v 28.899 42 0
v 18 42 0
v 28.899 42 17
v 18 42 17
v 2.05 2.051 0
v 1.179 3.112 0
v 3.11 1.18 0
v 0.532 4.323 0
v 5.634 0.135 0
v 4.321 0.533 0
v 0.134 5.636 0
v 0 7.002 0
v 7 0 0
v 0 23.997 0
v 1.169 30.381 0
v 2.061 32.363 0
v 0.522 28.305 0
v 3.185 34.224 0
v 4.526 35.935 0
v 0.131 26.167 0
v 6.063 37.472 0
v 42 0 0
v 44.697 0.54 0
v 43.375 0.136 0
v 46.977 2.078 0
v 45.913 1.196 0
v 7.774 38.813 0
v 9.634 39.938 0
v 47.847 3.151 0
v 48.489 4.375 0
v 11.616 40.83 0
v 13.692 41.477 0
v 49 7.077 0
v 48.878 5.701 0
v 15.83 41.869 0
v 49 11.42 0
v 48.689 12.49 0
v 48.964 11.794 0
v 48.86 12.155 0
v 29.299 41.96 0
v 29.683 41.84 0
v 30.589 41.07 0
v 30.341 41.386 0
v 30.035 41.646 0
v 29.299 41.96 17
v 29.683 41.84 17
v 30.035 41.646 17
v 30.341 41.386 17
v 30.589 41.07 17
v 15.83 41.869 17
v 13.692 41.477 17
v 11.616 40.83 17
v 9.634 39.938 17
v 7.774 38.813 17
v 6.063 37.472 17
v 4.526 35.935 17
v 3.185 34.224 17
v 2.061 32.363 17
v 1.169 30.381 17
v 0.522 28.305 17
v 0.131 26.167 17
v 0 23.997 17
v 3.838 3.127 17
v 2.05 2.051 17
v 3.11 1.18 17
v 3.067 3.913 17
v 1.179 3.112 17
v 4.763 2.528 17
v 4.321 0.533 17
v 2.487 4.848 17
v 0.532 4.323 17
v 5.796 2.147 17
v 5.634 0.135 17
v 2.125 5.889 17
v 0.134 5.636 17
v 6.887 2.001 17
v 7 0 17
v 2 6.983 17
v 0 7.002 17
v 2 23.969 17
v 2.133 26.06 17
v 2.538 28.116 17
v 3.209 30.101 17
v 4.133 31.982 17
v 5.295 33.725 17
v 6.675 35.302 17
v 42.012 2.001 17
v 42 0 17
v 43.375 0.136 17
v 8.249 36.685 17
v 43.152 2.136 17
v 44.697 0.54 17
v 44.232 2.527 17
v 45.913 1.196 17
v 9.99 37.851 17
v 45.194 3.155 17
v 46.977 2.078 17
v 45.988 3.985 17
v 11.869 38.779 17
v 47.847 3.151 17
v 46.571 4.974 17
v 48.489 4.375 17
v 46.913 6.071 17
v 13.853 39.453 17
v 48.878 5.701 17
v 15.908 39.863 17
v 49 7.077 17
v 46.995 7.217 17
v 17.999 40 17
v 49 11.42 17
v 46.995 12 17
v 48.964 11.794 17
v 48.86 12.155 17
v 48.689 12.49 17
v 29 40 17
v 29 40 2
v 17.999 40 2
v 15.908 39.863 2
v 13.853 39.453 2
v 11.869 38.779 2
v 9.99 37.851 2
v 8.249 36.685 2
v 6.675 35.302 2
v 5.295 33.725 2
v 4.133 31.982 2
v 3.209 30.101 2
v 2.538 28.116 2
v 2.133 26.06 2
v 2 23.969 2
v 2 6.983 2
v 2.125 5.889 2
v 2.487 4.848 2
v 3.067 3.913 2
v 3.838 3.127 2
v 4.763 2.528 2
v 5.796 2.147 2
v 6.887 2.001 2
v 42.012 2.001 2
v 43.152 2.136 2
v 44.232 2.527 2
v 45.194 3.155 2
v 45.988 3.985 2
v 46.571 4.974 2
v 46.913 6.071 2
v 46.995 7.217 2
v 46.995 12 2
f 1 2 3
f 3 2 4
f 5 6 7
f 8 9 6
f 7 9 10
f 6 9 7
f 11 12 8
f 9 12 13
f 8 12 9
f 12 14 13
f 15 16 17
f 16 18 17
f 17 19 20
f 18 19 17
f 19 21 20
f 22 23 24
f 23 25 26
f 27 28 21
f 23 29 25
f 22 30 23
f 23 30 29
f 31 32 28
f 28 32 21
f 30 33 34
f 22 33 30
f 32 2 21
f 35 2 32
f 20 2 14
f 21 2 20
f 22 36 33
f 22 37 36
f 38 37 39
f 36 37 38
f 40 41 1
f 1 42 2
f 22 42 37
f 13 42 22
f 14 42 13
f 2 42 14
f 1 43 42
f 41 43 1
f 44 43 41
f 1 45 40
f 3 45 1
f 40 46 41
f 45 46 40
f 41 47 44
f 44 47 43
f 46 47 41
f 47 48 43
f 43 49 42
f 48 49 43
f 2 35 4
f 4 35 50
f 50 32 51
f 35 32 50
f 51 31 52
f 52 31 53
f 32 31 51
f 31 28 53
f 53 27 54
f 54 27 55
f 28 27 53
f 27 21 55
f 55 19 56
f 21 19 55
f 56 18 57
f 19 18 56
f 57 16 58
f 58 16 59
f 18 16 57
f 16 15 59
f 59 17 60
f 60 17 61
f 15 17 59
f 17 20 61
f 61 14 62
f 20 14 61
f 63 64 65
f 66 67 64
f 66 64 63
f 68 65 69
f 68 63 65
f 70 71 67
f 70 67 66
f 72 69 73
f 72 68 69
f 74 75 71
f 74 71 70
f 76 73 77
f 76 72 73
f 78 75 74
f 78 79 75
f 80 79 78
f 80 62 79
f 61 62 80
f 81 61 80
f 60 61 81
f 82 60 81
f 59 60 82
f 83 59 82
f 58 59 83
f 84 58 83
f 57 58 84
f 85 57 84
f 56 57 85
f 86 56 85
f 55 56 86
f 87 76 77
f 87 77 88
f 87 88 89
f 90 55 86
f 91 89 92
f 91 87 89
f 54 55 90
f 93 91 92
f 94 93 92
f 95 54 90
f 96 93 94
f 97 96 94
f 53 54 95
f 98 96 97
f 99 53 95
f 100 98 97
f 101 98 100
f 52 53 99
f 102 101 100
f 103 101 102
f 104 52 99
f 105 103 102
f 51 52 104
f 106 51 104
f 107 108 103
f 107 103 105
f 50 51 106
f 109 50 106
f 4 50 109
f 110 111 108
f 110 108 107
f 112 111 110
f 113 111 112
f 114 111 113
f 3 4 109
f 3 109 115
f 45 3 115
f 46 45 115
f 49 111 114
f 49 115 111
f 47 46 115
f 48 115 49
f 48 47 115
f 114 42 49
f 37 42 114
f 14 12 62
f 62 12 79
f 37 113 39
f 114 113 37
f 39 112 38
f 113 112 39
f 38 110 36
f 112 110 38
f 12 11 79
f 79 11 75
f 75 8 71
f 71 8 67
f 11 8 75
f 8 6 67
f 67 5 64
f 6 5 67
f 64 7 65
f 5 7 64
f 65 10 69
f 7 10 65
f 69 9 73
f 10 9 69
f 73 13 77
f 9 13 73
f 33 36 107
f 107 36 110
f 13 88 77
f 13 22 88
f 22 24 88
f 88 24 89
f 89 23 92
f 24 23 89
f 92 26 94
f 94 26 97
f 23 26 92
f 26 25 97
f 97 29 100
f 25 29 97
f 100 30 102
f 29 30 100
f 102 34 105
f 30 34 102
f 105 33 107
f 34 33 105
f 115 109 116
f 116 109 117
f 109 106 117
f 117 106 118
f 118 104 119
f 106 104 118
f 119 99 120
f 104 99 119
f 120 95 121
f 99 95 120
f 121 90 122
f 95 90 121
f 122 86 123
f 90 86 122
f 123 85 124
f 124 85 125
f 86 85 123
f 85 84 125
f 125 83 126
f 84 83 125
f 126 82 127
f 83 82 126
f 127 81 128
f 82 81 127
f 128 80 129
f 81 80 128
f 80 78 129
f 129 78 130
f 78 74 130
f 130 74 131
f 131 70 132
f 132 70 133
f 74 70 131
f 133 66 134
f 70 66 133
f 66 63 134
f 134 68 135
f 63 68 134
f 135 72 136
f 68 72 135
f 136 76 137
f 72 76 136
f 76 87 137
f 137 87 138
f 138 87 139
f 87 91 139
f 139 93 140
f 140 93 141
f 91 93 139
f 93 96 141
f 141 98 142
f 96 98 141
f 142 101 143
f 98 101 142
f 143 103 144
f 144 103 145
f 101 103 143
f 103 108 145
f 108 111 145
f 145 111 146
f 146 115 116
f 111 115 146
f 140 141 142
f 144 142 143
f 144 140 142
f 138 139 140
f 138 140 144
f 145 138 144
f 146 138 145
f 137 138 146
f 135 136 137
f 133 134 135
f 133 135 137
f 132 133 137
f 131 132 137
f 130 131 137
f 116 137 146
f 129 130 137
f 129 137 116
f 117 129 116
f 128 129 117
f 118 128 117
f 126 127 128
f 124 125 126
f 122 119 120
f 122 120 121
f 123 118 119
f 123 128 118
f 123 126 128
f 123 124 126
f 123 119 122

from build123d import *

# Parameters (mm, degrees)
PAD_DEPTH    = 17
POCKET_DEPTH = 15
FILLET_R     = 2


with BuildPart() as part:
    # Sketch → Pad (new body)
    with BuildSketch(Plane.XY):
        with BuildLine():
            Line((7, 0), (42, 0))
            ThreePointArc((42, 0), (46.976998, 2.077654), (48.999573, 7.077287))
            Line((48.999573, 7.077287), (48.999573, 12))
            Line((30, 42), (48.999573, 12))
            Line((30, 42), (18, 42))
            ThreePointArc((18, 42), (5.270984, 36.726828), (0, 23.996906))
            Line((0, 23.996906), (0, 7.00193))
            ThreePointArc((0, 7.00193), (2.04957, 2.050935), (7, 0))
        make_face()
    extrude(amount=PAD_DEPTH)

    # Sketch001 → Pocket (cut)
    with BuildSketch(Plane.XY.offset(17)):
        with BuildLine():
            Line((6.887434, 2.001267), (42.011518, 2.001267))
            ThreePointArc((42.011518, 2.001267), (45.614855, 3.546862), (46.99536, 7.216617))
            Line((46.99536, 7.216617), (46.99536, 12))
            Line((29, 40), (46.99536, 12))
            Line((29, 40), (17.998587, 40))
            ThreePointArc((17.998587, 40), (6.674789, 35.302194), (2.00003, 23.968863))
            Line((2.00003, 23.968863), (2.00003, 6.982594))
            ThreePointArc((2.00003, 6.982594), (3.430979, 3.498273), (6.887434, 2.001267))
        make_face()
    extrude(amount=-POCKET_DEPTH, mode=Mode.SUBTRACT)

    # Fillet
    fillet_edges = [part.edges().sort_by_distance(p)[0] for p in [
        (48.999573, 12, 8.5),
        (30, 42, 8.5),
    ]]
    fillet(fillet_edges, radius=FILLET_R)


solid = part.part
